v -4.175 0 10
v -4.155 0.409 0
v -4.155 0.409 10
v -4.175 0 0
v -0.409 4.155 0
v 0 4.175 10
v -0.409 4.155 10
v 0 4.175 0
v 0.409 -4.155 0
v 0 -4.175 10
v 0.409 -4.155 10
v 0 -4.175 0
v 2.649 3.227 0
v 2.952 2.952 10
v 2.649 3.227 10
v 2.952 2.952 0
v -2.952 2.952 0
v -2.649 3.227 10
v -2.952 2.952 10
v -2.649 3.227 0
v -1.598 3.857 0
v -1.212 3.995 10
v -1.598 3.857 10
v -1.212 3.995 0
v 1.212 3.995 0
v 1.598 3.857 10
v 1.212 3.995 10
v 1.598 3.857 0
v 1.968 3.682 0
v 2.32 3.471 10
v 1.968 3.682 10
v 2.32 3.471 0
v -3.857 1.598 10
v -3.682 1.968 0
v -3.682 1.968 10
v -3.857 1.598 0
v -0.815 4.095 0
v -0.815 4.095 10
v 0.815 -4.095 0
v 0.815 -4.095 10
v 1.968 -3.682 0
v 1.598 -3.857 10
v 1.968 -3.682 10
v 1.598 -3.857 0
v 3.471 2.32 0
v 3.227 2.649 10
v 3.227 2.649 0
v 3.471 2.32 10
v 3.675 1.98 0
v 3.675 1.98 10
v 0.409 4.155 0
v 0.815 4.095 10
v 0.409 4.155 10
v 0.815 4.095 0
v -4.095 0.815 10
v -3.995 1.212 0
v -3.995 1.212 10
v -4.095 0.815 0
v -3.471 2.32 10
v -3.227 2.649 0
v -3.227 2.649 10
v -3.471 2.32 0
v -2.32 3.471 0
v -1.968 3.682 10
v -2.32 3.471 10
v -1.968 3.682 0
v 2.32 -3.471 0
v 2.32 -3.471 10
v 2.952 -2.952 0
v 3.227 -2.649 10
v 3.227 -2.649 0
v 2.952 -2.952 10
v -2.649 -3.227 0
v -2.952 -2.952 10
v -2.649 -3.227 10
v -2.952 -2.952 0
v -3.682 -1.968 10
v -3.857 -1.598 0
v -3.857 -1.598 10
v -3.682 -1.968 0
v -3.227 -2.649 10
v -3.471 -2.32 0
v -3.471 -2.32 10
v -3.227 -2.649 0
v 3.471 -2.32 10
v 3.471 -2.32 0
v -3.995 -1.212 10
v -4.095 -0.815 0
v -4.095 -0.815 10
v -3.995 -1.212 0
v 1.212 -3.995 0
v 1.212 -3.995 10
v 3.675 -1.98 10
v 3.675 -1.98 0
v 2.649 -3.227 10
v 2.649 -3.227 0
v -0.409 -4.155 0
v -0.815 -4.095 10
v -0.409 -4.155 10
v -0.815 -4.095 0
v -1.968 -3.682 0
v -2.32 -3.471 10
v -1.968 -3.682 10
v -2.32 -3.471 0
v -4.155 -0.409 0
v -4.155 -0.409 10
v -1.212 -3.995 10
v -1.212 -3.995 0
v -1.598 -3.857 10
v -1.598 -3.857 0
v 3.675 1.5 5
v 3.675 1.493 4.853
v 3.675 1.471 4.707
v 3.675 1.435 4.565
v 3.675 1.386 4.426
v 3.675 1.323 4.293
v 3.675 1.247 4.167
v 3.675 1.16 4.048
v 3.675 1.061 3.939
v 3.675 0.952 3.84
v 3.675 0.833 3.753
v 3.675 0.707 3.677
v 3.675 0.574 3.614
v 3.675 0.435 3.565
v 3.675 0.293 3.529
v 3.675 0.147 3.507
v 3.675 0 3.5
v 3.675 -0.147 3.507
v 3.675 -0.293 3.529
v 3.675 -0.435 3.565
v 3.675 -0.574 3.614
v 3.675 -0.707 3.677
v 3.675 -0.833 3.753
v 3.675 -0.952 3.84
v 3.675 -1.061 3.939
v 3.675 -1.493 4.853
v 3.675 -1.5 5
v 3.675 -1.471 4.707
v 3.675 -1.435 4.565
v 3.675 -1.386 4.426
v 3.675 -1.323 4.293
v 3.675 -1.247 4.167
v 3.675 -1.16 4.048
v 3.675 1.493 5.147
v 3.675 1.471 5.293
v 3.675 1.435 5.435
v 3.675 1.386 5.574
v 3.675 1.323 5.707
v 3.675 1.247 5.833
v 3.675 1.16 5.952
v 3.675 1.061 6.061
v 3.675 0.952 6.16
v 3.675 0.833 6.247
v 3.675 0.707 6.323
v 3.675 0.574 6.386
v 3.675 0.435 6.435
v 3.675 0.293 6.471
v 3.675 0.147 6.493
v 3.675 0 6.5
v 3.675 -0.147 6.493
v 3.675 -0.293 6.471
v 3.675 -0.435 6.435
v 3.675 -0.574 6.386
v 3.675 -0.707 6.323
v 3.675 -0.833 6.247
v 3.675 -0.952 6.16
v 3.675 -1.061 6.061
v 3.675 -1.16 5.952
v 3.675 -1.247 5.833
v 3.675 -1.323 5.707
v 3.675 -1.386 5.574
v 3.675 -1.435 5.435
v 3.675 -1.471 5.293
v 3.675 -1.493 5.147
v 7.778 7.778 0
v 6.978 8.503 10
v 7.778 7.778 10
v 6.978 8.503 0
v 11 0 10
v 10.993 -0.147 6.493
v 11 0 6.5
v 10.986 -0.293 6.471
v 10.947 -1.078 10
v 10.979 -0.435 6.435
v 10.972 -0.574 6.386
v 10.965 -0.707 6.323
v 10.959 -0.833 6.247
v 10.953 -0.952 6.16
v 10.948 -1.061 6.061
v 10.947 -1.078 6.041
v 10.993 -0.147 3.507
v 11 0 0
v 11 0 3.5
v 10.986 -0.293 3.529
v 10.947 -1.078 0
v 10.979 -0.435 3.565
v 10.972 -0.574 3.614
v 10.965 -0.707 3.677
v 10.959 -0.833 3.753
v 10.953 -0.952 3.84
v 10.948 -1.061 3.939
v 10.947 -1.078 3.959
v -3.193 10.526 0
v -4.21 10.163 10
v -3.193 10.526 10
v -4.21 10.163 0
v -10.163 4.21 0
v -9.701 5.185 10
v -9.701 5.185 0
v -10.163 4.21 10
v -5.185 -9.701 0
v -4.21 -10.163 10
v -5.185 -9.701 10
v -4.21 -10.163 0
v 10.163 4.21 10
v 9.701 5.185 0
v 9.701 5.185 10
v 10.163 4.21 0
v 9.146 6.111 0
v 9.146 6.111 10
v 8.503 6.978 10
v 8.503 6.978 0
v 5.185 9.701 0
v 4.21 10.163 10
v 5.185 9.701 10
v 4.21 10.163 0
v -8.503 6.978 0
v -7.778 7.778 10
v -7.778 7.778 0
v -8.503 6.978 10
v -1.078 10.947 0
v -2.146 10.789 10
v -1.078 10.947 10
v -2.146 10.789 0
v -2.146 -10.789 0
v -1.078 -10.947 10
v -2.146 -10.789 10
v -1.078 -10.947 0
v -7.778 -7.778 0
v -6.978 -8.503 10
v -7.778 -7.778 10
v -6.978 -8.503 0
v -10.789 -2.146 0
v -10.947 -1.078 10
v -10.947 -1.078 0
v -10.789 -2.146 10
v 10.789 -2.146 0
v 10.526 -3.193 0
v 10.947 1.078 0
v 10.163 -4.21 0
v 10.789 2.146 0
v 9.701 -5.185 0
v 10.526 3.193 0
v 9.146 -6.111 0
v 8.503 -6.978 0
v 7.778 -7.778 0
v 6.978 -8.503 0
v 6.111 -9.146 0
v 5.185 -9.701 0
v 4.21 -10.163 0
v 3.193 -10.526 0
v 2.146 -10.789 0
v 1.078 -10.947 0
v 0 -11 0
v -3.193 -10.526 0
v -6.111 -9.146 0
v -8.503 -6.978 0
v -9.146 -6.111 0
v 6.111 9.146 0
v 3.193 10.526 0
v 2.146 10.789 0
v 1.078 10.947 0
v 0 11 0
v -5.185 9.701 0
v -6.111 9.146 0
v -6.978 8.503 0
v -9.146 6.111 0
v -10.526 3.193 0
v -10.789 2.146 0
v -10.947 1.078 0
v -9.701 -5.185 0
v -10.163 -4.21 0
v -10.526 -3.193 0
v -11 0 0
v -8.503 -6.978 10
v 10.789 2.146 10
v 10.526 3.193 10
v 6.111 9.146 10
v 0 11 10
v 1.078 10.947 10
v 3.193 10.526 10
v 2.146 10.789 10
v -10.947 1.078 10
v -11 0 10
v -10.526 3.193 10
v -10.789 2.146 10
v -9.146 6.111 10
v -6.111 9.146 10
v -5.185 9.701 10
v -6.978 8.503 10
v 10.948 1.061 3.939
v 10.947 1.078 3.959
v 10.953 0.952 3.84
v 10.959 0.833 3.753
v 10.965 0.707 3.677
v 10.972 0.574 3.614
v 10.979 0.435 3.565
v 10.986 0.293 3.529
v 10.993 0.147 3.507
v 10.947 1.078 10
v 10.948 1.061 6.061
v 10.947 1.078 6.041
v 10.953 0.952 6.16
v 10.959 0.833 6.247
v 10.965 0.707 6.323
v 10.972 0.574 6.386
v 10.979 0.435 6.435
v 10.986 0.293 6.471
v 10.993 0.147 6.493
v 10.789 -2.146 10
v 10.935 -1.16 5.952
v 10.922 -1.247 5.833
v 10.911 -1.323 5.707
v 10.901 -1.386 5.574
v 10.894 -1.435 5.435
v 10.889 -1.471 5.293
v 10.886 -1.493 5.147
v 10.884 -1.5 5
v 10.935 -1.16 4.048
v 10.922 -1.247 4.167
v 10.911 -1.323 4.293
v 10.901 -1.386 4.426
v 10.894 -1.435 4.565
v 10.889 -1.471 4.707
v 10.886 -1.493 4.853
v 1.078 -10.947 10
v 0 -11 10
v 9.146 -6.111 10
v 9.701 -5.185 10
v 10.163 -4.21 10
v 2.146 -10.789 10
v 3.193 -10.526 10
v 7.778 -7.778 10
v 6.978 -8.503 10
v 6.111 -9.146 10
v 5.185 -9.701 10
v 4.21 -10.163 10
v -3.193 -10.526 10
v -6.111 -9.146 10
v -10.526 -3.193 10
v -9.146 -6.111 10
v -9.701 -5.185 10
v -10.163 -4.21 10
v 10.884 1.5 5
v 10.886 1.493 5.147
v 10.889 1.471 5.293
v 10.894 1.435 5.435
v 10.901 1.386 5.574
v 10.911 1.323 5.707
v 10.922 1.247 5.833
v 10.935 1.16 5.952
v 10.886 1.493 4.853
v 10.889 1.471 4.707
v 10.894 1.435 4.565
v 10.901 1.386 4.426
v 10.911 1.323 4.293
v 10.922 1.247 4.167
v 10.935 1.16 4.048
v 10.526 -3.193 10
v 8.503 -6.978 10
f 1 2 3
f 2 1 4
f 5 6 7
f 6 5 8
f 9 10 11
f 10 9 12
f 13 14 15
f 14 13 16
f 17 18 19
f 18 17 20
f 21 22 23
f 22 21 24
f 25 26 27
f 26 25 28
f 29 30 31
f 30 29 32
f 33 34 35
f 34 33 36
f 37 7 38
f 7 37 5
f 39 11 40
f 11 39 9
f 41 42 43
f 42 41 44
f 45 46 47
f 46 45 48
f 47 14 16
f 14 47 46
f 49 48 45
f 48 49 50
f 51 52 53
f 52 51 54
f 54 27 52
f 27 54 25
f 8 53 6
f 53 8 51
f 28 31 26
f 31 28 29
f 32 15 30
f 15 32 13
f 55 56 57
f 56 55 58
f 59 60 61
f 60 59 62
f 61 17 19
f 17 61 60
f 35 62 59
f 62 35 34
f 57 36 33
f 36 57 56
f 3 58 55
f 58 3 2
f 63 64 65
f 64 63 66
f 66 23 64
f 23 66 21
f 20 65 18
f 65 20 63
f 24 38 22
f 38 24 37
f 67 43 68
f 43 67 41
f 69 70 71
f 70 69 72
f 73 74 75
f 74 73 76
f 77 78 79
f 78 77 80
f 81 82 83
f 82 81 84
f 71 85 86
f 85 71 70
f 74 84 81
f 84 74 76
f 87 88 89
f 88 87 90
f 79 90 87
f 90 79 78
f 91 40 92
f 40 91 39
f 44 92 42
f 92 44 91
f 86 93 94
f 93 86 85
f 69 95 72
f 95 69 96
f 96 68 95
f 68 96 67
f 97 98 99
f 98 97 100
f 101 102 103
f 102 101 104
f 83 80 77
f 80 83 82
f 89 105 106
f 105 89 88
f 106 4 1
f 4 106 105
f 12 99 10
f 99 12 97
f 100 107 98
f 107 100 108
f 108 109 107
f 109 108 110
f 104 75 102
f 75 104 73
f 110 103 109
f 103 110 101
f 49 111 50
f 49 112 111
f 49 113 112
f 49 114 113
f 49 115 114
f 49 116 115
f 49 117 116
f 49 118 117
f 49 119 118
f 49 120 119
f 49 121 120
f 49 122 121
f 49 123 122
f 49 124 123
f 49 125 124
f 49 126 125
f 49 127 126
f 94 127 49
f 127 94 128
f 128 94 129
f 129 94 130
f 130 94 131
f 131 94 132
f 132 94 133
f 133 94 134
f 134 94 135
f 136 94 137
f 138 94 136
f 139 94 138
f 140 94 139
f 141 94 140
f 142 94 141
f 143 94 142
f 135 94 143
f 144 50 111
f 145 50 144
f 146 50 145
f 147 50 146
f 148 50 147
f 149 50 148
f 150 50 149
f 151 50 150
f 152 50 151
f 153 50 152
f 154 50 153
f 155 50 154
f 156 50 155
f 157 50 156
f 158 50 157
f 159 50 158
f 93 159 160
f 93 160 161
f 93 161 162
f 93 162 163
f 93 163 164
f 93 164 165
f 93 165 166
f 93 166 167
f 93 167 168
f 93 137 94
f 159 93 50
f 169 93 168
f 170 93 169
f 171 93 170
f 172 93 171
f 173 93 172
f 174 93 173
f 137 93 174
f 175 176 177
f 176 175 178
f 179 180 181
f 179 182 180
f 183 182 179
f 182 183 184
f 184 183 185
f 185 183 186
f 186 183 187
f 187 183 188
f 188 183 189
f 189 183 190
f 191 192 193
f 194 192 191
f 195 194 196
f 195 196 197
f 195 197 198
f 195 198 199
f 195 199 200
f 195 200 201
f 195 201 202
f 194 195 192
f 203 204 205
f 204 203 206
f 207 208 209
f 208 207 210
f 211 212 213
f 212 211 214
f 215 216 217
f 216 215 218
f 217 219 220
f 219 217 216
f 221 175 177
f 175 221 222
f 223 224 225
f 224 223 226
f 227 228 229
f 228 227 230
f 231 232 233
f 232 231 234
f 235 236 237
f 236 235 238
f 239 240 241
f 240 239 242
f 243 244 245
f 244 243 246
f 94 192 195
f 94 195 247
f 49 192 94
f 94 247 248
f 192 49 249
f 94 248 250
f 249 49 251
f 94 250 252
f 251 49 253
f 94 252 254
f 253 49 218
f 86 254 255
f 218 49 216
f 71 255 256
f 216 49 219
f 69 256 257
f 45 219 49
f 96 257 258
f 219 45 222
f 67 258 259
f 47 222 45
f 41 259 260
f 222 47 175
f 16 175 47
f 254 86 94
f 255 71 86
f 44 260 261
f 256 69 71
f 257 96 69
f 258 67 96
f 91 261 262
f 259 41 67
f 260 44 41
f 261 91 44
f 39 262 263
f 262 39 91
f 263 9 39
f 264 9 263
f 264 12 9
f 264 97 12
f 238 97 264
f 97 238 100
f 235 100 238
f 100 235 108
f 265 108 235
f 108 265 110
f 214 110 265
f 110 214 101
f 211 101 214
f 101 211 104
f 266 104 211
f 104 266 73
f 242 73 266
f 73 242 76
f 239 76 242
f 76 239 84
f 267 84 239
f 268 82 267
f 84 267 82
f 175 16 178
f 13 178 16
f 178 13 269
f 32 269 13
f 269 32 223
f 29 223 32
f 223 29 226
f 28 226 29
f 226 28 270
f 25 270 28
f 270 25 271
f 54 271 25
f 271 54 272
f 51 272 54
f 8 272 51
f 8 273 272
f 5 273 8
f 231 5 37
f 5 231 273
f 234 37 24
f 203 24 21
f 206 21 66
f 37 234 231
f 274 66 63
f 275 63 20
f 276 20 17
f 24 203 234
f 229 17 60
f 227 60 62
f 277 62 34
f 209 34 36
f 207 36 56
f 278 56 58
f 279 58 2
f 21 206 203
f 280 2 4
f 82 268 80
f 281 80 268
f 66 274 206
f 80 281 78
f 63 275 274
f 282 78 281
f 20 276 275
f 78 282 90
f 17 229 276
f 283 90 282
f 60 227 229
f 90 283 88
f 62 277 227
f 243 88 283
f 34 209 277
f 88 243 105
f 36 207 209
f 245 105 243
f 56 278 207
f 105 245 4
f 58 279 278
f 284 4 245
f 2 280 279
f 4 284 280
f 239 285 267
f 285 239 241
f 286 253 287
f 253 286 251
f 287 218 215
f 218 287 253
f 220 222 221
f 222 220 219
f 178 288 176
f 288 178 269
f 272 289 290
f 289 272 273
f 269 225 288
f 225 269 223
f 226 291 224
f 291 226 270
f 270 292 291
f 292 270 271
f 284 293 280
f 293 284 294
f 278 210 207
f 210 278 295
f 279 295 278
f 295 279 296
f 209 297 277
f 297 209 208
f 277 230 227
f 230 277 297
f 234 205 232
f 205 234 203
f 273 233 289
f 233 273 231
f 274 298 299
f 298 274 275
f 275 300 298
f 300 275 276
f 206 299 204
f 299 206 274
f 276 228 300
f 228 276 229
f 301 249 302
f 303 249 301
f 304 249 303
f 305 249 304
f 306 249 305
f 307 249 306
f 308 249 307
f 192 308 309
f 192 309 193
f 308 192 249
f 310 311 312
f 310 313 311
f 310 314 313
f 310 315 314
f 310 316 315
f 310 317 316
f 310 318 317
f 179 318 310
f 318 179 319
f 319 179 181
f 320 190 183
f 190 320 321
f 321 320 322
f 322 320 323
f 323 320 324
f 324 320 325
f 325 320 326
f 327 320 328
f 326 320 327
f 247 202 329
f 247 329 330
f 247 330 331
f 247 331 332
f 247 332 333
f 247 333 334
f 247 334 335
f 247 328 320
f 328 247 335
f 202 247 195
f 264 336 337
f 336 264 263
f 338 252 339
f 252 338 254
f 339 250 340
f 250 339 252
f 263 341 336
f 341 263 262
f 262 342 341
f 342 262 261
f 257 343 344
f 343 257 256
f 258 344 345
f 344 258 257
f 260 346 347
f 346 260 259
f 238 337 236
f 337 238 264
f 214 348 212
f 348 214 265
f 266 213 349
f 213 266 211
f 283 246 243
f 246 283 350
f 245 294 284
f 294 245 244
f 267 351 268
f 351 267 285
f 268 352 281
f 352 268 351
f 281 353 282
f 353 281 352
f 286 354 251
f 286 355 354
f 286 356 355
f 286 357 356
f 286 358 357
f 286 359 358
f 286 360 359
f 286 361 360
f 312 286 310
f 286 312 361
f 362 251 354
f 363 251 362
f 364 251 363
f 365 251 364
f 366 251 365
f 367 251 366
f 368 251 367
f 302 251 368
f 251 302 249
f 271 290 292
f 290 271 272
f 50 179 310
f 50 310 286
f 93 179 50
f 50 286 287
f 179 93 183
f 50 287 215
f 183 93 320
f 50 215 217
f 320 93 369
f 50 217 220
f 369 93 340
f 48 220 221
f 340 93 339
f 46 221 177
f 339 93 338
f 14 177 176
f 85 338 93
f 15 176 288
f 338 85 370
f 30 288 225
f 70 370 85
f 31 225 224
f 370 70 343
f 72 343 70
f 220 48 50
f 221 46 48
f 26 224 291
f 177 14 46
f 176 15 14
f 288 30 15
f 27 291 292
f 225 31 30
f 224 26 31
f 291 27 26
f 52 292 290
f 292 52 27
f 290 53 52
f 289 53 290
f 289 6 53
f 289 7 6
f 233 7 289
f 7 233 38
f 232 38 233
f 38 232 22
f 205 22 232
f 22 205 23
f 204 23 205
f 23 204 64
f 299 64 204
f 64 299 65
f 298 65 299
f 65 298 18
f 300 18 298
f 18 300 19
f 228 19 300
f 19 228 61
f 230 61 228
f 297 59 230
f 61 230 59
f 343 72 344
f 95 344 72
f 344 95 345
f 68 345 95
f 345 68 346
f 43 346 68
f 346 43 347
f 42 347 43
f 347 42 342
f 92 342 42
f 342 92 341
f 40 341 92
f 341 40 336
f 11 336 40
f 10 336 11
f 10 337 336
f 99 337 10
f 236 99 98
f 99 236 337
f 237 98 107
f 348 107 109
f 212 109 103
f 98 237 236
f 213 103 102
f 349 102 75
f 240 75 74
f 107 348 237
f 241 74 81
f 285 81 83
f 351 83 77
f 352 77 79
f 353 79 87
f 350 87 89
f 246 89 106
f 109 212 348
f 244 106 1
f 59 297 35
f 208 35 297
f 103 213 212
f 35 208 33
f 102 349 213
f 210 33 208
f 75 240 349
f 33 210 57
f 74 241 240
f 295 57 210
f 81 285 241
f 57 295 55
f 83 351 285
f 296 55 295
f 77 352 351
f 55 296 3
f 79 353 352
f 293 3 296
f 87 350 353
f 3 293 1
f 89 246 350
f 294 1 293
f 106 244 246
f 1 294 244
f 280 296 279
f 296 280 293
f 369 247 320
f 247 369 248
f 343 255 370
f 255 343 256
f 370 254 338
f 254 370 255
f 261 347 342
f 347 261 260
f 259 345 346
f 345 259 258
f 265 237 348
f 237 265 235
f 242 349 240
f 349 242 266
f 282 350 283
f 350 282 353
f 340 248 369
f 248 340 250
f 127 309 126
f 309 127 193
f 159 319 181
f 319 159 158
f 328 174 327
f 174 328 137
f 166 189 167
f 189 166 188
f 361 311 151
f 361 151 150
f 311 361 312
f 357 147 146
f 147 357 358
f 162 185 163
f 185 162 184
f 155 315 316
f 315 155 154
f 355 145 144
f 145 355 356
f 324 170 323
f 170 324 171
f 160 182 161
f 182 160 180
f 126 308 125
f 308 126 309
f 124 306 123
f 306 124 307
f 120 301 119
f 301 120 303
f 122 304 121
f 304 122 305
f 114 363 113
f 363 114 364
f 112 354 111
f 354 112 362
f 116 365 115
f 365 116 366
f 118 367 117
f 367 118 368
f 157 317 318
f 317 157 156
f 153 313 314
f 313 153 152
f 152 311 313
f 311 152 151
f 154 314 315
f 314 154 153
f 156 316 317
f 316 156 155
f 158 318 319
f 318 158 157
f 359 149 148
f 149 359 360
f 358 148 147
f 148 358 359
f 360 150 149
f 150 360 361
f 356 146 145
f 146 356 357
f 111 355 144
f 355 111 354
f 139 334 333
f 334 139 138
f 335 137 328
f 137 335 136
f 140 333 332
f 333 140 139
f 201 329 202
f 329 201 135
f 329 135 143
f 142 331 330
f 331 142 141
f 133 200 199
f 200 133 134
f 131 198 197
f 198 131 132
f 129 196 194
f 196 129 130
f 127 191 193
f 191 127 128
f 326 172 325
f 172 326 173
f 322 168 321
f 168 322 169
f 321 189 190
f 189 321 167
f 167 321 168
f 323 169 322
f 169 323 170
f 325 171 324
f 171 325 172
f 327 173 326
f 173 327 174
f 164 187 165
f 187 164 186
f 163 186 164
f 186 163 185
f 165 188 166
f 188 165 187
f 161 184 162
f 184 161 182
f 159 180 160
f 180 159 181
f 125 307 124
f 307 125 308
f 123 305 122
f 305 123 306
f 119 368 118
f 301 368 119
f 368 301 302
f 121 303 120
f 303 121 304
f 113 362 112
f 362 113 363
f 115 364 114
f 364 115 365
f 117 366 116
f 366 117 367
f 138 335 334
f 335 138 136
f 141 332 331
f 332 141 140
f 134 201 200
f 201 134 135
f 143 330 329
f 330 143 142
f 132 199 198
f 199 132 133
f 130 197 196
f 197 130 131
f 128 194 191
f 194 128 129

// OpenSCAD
// Gen-DP — shaft collar with D-flat bore (set screw bears on the flat); print x4
include <parameters.scad>;
$fn = 64;
// D-flat keyed bore: flat faces +X (angle 0 = magnet pocket 0 = index notch)
module dflat_bore(h) {
    intersection() {
        cylinder(d=shaft_bore, h=h);
        translate([-shaft_bore, -shaft_bore, 0]) cube([shaft_bore + dflat_x, 2*shaft_bore, h]);
    }
}

od = 22; h = collar_h; set_d = 3.0;
difference() {
    cylinder(d=od, h=h);
    translate([0, 0, -0.1]) dflat_bore(h + 0.2);
    translate([0, 0, h/2]) rotate([0, 90, 0]) cylinder(d=set_d, h=od);
}
